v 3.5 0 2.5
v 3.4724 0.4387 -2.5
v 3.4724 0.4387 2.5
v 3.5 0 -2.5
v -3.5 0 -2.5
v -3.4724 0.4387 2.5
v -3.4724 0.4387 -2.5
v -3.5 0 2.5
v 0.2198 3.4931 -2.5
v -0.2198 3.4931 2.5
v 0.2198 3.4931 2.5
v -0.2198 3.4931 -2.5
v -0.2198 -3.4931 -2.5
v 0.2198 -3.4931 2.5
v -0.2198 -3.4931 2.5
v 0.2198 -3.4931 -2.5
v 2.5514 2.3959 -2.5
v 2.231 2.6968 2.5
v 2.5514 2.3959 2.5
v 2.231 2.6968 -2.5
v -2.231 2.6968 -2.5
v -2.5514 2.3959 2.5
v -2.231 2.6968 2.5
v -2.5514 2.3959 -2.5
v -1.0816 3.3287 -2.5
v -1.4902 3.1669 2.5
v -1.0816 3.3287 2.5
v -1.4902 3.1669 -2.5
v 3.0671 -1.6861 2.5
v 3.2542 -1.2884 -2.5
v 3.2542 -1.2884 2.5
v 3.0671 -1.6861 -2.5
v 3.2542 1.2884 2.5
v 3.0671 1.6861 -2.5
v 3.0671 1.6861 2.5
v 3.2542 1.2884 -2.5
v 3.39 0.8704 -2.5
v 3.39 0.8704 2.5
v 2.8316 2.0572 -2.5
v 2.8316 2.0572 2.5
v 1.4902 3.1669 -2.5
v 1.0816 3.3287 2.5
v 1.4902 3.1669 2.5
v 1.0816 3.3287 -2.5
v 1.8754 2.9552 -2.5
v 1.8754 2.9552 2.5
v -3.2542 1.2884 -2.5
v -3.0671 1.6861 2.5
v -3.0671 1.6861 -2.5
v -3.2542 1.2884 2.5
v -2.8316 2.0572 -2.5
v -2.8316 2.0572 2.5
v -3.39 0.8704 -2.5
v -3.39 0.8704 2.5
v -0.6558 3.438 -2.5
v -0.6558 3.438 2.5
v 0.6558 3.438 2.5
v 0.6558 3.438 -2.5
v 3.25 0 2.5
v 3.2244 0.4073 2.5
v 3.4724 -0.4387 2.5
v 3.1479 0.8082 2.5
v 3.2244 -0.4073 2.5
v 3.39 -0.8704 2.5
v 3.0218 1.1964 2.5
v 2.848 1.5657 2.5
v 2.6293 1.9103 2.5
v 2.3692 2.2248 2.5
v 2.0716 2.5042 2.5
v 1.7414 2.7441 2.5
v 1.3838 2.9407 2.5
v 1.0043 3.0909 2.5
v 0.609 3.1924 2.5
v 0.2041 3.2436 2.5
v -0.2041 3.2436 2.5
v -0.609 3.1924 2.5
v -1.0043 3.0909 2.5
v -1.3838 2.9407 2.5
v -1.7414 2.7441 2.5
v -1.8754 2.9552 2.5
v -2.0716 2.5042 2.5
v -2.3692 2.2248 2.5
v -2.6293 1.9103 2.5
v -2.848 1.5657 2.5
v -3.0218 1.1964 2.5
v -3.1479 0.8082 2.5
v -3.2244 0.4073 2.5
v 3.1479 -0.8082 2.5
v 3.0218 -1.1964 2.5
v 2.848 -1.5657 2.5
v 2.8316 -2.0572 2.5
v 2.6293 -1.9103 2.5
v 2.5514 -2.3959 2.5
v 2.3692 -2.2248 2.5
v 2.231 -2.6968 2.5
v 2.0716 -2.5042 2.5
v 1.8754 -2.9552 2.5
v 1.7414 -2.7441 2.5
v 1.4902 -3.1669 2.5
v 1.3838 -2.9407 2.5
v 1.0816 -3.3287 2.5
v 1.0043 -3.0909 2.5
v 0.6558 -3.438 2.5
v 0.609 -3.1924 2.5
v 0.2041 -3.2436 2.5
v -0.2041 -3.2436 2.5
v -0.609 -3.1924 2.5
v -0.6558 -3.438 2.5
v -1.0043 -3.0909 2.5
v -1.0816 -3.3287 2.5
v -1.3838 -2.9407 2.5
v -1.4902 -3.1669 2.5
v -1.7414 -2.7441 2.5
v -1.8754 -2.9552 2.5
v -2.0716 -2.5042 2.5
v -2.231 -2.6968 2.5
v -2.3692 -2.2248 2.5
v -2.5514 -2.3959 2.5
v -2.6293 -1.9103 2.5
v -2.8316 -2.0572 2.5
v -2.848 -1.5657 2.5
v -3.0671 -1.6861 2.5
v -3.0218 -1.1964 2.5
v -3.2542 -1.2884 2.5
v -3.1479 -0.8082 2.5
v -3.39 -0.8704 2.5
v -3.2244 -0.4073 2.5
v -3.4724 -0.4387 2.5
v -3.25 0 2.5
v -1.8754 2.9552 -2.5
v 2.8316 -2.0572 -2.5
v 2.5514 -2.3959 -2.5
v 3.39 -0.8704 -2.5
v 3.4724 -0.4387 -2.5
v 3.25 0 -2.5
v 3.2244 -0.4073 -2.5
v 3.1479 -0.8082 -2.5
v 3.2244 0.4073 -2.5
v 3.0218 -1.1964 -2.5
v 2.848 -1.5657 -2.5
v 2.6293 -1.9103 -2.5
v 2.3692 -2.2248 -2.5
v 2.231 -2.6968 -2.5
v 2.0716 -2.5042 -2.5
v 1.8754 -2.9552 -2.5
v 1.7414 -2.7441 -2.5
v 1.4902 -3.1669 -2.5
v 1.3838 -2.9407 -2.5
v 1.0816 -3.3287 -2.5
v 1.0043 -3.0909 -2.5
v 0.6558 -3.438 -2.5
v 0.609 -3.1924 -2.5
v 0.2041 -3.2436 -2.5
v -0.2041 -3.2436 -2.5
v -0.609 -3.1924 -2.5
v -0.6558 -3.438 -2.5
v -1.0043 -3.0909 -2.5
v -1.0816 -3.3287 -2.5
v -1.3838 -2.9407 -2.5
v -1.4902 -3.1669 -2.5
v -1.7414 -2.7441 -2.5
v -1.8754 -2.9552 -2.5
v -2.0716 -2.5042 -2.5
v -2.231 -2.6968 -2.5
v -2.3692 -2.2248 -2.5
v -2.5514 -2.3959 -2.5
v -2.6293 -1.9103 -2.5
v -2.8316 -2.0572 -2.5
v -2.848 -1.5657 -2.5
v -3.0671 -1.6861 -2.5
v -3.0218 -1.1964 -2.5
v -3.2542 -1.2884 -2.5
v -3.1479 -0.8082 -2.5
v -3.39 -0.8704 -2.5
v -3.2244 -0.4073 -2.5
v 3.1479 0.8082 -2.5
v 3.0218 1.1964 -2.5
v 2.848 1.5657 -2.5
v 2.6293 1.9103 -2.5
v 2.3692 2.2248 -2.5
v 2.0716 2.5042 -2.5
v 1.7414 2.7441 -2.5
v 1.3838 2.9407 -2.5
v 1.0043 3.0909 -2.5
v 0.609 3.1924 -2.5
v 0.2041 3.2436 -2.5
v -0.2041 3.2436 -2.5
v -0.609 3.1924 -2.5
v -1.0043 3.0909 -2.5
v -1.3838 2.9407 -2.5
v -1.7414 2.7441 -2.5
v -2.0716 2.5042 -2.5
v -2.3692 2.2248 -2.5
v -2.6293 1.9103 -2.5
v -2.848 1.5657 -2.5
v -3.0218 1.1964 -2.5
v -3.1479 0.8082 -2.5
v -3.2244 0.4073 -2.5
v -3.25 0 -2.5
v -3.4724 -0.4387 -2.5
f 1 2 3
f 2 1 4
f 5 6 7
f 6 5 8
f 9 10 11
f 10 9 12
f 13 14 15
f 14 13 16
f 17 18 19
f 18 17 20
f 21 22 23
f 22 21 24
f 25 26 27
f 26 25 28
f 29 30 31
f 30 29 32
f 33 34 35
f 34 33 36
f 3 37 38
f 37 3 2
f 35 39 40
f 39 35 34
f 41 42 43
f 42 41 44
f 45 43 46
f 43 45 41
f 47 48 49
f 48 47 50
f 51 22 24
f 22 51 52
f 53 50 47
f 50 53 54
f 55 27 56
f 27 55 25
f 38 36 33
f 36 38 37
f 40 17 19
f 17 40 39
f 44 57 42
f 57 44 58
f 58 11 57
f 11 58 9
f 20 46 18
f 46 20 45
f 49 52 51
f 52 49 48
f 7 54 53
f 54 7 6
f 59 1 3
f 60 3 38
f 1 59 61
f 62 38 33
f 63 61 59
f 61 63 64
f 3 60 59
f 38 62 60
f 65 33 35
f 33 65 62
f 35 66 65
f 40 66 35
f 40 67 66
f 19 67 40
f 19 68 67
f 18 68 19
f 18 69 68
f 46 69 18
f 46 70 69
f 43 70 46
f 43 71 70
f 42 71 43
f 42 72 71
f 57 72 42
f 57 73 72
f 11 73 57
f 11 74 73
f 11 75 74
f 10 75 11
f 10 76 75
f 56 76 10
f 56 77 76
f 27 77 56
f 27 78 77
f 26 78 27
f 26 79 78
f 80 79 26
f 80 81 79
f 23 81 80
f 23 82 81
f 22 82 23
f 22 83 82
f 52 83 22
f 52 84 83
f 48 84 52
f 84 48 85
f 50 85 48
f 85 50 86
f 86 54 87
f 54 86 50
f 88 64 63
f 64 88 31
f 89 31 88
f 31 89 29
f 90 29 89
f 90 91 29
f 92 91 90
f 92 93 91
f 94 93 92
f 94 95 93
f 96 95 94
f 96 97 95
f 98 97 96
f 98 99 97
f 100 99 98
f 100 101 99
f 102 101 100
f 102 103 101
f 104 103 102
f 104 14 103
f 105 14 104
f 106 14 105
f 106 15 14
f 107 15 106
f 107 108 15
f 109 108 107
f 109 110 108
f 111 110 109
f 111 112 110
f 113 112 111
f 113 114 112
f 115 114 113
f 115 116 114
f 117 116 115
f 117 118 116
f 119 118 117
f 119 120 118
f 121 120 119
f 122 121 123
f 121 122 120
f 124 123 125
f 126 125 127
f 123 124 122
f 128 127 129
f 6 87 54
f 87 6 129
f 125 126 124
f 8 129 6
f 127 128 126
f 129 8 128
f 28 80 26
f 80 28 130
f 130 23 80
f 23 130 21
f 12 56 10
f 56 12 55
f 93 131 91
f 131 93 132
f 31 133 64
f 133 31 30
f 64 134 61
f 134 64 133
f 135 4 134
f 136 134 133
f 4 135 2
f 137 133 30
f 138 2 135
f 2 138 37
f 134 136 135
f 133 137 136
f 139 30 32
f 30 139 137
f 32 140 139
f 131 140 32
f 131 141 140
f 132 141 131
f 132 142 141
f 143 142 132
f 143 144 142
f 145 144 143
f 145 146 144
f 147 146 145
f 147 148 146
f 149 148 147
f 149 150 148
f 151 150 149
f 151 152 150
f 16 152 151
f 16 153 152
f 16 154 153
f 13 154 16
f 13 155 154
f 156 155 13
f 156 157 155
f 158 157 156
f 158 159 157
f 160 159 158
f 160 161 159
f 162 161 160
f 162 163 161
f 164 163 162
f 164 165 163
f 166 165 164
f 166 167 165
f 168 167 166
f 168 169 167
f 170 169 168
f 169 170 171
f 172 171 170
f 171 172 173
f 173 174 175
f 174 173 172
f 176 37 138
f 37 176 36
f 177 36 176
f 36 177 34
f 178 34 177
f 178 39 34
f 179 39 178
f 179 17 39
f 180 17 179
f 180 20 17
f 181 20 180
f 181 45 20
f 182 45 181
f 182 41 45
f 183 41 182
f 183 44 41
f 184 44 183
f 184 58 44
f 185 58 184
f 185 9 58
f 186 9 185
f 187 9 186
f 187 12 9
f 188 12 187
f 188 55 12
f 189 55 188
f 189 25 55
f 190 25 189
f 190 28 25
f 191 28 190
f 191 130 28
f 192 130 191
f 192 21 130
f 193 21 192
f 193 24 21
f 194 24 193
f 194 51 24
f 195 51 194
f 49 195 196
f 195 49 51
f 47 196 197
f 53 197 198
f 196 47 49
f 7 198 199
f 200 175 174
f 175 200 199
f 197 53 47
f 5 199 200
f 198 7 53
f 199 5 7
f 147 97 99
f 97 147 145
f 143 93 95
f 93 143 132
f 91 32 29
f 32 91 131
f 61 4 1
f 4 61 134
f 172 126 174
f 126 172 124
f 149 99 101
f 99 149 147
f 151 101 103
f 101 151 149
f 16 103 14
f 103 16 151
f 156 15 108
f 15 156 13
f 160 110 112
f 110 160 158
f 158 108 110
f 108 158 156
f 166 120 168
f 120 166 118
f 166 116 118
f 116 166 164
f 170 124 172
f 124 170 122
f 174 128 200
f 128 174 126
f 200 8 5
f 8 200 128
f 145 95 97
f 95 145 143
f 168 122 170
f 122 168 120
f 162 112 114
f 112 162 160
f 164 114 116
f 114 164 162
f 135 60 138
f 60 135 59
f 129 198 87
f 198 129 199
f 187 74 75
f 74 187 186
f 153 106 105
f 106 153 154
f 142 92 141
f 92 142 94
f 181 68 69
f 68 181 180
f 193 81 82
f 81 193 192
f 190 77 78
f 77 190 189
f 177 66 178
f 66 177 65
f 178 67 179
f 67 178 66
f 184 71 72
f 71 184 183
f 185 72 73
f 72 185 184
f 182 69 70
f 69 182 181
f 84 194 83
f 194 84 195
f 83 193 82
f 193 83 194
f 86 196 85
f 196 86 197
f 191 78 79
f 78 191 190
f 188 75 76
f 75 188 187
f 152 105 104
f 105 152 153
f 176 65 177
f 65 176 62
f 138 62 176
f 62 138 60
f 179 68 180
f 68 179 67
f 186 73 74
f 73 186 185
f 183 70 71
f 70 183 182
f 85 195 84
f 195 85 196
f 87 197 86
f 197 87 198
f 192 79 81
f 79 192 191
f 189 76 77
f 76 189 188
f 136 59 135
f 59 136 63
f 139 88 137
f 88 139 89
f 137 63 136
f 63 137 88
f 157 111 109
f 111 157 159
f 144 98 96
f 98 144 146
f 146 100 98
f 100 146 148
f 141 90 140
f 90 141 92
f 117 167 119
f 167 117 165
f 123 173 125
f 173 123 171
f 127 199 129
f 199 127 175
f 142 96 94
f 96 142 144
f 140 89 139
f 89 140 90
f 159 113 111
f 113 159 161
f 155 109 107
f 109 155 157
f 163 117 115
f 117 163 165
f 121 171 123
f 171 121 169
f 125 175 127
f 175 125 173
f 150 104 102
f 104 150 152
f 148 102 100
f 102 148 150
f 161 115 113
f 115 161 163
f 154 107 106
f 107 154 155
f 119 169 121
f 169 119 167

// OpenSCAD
$fn = 50;


difference() {
	union() {
		translate(v = [0, 0, -2.5000000000]) {
			cylinder(h = 5, r = 3.5000000000);
		}
	}
	union() {
		translate(v = [0, 0, -100.0000000000]) {
			cylinder(h = 200, r = 3.2500000000);
		}
	}
}
